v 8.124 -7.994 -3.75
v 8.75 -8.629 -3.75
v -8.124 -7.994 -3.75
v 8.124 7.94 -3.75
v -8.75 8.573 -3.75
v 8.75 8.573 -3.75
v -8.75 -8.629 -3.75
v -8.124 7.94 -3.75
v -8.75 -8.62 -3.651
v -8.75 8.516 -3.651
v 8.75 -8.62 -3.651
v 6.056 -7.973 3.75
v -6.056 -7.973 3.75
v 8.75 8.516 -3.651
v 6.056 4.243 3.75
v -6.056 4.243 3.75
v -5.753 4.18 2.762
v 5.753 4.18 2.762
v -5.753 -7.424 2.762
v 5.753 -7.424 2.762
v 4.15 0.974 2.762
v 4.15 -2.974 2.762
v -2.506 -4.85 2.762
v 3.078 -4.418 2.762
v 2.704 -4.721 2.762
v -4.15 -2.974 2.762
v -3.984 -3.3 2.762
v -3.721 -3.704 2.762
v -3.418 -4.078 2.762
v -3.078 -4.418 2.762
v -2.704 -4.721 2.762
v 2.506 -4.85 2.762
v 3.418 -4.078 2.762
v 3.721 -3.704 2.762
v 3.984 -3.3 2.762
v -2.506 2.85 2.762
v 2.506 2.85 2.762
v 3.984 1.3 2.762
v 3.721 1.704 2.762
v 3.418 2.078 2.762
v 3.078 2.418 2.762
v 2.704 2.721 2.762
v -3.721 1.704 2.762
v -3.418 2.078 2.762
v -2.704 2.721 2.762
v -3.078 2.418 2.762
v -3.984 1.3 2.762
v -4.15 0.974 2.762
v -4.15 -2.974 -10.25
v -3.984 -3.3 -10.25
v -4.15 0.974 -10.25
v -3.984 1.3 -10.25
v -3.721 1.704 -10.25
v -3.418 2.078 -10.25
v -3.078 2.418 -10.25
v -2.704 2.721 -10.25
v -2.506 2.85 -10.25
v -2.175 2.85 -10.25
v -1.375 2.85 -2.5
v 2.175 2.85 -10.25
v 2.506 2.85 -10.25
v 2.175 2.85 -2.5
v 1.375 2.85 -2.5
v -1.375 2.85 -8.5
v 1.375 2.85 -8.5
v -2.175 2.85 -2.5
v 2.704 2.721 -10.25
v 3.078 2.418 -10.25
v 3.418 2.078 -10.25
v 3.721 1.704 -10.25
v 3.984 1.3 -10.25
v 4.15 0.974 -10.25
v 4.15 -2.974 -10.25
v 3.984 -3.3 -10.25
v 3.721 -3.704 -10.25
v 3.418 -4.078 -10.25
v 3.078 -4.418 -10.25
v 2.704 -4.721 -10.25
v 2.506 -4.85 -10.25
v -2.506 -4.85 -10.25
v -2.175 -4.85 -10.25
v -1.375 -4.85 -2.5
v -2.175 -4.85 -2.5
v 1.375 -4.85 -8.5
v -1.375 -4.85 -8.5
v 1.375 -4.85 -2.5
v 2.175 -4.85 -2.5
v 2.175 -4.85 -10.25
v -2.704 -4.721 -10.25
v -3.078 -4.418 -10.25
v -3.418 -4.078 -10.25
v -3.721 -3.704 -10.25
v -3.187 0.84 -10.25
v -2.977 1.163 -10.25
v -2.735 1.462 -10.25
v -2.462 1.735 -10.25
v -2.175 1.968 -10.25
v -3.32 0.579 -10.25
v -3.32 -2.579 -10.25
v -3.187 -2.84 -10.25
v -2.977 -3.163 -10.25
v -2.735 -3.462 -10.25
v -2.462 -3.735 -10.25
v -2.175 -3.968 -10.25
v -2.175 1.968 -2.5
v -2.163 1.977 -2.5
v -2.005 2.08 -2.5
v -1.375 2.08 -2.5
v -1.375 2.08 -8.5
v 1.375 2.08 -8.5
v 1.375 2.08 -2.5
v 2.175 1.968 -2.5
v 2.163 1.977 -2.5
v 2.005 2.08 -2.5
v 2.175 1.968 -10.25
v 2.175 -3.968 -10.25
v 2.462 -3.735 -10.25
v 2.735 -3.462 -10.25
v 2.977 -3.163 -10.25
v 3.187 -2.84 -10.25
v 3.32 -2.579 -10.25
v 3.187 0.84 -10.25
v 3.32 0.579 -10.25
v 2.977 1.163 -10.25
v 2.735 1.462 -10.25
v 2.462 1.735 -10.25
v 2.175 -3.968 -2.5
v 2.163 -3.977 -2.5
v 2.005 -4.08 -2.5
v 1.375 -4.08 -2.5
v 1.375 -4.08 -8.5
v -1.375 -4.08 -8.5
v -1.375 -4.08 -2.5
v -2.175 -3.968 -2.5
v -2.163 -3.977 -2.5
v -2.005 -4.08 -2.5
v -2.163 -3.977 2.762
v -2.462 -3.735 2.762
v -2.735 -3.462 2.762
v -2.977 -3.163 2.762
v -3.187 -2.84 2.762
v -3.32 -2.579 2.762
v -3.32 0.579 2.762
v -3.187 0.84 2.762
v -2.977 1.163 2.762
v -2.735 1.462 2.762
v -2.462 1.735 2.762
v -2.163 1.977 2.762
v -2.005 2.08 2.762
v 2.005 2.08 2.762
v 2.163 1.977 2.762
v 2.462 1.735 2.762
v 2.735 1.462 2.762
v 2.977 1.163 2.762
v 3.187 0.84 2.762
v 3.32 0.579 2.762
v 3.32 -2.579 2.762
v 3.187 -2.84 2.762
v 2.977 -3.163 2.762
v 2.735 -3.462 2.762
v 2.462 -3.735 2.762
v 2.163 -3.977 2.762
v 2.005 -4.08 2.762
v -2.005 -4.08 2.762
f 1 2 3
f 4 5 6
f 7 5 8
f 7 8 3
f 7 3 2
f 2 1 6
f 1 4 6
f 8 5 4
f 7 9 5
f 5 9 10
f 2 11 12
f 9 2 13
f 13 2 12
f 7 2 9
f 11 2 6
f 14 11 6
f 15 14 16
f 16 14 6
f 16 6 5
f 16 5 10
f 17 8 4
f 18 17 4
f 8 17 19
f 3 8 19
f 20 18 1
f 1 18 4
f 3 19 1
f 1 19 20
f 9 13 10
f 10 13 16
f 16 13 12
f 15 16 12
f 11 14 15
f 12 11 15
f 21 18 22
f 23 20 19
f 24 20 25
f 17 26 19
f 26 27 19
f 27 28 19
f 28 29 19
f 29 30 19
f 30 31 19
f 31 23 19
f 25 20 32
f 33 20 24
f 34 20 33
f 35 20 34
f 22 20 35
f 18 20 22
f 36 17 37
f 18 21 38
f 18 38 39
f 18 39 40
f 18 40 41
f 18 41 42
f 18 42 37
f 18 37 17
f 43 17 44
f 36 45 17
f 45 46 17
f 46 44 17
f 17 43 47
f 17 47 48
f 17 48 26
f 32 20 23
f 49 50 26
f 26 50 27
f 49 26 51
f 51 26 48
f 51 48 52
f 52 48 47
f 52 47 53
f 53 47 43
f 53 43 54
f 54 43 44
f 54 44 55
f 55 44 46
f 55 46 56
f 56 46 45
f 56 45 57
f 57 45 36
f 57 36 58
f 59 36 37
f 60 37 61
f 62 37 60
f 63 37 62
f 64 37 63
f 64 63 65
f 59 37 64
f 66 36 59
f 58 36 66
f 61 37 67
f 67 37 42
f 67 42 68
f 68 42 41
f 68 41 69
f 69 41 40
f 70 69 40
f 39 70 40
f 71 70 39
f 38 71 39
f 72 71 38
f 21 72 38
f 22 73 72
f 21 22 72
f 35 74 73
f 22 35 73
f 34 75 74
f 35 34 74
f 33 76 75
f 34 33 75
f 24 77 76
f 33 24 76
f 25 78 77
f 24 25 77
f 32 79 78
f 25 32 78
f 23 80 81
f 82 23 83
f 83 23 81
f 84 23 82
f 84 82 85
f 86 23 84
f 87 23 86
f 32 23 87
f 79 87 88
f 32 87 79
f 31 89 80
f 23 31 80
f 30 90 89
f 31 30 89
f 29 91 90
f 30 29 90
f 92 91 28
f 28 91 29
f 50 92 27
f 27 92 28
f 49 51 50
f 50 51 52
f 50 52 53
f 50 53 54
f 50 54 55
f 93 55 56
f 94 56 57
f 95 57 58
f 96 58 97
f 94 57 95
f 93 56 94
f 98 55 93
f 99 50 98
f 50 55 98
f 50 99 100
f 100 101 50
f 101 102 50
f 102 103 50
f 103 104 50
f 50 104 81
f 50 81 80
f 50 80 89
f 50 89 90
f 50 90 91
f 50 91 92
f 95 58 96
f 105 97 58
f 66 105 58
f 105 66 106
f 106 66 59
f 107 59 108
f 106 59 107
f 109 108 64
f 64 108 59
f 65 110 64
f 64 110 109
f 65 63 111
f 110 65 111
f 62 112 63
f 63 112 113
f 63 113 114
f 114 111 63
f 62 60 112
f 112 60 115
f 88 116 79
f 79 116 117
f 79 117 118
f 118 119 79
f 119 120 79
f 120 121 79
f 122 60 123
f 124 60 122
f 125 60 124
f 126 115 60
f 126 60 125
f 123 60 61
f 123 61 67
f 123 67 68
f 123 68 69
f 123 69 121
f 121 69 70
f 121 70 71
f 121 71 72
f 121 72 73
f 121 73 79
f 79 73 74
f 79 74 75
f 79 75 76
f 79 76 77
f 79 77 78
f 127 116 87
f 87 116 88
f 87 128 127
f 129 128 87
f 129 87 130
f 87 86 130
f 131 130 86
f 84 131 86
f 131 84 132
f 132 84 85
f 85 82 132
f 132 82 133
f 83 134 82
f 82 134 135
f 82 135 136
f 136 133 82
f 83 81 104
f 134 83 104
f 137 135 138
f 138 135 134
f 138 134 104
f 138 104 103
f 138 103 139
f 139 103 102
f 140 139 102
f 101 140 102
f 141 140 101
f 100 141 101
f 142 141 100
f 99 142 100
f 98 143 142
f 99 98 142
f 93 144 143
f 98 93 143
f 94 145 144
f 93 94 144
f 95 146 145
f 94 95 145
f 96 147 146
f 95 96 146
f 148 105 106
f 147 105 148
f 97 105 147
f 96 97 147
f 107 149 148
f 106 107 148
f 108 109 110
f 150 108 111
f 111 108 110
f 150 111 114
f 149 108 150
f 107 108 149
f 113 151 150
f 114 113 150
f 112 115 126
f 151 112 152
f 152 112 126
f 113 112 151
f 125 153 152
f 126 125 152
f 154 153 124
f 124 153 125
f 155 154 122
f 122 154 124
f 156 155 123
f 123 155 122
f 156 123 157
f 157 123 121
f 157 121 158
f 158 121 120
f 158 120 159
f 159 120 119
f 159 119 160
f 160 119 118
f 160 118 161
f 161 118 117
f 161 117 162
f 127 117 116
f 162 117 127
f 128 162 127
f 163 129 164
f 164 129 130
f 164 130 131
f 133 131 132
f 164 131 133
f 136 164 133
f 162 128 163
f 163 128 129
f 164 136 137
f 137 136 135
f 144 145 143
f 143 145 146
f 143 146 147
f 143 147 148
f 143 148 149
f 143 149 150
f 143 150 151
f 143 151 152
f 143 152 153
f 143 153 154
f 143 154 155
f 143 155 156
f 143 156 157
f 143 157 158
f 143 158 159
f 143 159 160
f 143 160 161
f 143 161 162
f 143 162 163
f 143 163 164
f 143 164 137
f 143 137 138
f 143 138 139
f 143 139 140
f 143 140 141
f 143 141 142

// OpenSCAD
$fn = 60;

w = 17.5;
h = 7.5;

x_post = 8.3;
y_post = 7.7;
r_post = 9.2/2;

w_flange = 2.75;
w_flange_cutout = 0.8;

// distance from bottom edge of cap to catch extrusions
catch_offset = 1.75;

difference() {
  union() {
    difference() {
      keycap();
      translate([0, 0.15, -0.8]) {
        scale([0.95, 0.95, 0.95]) keycap();
      }
    }

    translate([0, -1, h/2-6.5]) {
      // post ring
      difference() {
        post();
        scale([0.8, 0.8, 1.5]) post();
        flange_cutout();
        mirror([1, 0, 0]) flange_cutout();
        translate([0, 0, -h]) {
          cube([w_flange+w_flange_cutout, 2*r_post, 2*catch_offset], center = true);
        }
      }
    }

    *translate([0, -0.8, 0]) {
      catch_extrusion();
      mirror([0, 1, 0]) catch_extrusion();
    }
  }
  top_cutout();

  // temp top flatcut
  translate([0, 0, h]) cube([2*w, 2*w, h], center = true);
}

module catch_extrusion() {
  translate([0, y_post/2-0.2, -(h-catch_offset+1)]) {
    rotate([45, 0, 0]) {
      cube([w_flange-0.2, 1, 1], center = true);
    }
  }
}

module flange_cutout() {
  translate([w_flange/2+w_flange_cutout/2, 0, -h/2])
    cube([w_flange_cutout, w, 8], center = true);
}

module post() {
  intersection() {
    cylinder(h = 2*h, r = r_post, center = true);
    cube([x_post, y_post, 2*h], center = true);
  }
}

module keycap() {
  difference() {
    cube([w, w, h], center = true);
    side_cutout();
    mirror(y =1) side_cutout();
    front_cutout();
    back_cutout();
    top_cutout();
  }
}

module side_cutout() {
  translate([w/2+0.4, -w, -h/2-1]) {
    rotate([0, -20, 0]) {
      cube([2*w, 2*w, 2*w]);
    }
  }
}

module front_cutout() {
  translate([-w, w/2+0.4, -h/2-1]) {
    rotate([30, 0, 0]) {
      cube([2*w, 2*w, 2*w]);
    }
  }
}

module back_cutout() {
  translate([-w, -(w/2+0.1+2*w), -h/2-1]) {
    rotate([-5, 0, 0]) {
      cube([2*w, 2*w, 2*w]);
    }
  }
}

module top_cutout() {
  translate([0, 0, 2*w+h/2-1]) {
    rotate([95, 0, 0]) {
      //cylinder(h = 2*w, r = 2*w, center = true);
    }
  }
}
